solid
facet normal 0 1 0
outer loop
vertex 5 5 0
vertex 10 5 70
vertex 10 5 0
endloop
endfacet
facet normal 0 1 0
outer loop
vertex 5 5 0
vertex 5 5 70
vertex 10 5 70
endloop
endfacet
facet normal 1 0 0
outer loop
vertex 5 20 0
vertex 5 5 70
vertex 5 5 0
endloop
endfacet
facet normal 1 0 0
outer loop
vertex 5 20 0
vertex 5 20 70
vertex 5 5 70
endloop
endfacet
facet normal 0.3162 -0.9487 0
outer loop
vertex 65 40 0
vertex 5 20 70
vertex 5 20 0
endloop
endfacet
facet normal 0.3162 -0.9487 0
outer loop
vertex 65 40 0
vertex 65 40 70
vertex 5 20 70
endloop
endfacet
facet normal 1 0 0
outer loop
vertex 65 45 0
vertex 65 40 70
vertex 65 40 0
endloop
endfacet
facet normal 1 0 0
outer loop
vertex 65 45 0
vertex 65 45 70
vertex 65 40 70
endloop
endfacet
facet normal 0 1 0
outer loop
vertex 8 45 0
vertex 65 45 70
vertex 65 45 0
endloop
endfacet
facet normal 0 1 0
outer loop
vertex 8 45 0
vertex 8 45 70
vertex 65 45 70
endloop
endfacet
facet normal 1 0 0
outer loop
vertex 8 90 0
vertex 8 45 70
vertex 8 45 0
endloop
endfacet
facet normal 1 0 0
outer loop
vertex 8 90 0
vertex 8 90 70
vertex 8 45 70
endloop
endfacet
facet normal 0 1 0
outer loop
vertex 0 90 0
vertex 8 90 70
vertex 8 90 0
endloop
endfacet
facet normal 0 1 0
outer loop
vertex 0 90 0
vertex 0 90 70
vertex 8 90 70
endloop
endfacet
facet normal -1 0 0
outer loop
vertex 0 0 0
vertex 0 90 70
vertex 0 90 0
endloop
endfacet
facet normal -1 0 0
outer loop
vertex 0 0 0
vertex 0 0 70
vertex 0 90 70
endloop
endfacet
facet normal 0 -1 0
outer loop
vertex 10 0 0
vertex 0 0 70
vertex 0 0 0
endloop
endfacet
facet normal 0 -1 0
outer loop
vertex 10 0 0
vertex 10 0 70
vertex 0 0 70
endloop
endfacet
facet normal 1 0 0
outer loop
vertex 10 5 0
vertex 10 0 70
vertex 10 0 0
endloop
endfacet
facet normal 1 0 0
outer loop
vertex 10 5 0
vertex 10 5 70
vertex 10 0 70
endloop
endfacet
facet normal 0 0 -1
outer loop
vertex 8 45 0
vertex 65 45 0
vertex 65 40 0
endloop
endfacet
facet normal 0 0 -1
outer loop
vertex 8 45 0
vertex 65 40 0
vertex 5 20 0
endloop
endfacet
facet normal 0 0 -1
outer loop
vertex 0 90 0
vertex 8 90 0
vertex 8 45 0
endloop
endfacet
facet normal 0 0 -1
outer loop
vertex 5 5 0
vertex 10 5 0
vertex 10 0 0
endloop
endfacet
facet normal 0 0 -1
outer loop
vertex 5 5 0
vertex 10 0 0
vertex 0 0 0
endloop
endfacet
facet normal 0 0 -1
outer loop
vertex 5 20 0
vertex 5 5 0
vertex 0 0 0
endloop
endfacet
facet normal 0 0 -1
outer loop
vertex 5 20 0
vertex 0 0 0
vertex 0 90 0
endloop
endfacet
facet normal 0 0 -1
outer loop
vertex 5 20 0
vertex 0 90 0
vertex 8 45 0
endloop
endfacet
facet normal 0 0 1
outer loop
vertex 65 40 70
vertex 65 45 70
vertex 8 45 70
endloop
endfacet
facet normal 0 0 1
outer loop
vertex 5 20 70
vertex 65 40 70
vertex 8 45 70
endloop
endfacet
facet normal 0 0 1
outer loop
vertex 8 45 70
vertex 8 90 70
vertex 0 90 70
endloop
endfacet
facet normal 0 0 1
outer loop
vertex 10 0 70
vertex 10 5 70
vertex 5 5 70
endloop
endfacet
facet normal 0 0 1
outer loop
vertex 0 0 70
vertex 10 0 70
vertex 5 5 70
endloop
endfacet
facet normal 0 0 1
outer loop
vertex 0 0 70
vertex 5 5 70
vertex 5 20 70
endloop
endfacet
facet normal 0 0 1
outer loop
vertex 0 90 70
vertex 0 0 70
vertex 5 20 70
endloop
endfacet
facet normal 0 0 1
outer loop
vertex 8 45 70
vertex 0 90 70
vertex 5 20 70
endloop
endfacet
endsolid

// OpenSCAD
// phone stand
// longer foot and stepper back
// 15.05.2026 Sebastian Weigl
 
// set the fregment sizes
$fn = $preview ? 48 : 64;

 linear_extrude(height=70, scale=[1,1], slices=0, twist=0)
 polygon(points=[[0,0],[10,0],[10,5],[5,5],[5,20],[65,40],[65,45],[8,45],[8,90],[0,90],[0,0]]);
